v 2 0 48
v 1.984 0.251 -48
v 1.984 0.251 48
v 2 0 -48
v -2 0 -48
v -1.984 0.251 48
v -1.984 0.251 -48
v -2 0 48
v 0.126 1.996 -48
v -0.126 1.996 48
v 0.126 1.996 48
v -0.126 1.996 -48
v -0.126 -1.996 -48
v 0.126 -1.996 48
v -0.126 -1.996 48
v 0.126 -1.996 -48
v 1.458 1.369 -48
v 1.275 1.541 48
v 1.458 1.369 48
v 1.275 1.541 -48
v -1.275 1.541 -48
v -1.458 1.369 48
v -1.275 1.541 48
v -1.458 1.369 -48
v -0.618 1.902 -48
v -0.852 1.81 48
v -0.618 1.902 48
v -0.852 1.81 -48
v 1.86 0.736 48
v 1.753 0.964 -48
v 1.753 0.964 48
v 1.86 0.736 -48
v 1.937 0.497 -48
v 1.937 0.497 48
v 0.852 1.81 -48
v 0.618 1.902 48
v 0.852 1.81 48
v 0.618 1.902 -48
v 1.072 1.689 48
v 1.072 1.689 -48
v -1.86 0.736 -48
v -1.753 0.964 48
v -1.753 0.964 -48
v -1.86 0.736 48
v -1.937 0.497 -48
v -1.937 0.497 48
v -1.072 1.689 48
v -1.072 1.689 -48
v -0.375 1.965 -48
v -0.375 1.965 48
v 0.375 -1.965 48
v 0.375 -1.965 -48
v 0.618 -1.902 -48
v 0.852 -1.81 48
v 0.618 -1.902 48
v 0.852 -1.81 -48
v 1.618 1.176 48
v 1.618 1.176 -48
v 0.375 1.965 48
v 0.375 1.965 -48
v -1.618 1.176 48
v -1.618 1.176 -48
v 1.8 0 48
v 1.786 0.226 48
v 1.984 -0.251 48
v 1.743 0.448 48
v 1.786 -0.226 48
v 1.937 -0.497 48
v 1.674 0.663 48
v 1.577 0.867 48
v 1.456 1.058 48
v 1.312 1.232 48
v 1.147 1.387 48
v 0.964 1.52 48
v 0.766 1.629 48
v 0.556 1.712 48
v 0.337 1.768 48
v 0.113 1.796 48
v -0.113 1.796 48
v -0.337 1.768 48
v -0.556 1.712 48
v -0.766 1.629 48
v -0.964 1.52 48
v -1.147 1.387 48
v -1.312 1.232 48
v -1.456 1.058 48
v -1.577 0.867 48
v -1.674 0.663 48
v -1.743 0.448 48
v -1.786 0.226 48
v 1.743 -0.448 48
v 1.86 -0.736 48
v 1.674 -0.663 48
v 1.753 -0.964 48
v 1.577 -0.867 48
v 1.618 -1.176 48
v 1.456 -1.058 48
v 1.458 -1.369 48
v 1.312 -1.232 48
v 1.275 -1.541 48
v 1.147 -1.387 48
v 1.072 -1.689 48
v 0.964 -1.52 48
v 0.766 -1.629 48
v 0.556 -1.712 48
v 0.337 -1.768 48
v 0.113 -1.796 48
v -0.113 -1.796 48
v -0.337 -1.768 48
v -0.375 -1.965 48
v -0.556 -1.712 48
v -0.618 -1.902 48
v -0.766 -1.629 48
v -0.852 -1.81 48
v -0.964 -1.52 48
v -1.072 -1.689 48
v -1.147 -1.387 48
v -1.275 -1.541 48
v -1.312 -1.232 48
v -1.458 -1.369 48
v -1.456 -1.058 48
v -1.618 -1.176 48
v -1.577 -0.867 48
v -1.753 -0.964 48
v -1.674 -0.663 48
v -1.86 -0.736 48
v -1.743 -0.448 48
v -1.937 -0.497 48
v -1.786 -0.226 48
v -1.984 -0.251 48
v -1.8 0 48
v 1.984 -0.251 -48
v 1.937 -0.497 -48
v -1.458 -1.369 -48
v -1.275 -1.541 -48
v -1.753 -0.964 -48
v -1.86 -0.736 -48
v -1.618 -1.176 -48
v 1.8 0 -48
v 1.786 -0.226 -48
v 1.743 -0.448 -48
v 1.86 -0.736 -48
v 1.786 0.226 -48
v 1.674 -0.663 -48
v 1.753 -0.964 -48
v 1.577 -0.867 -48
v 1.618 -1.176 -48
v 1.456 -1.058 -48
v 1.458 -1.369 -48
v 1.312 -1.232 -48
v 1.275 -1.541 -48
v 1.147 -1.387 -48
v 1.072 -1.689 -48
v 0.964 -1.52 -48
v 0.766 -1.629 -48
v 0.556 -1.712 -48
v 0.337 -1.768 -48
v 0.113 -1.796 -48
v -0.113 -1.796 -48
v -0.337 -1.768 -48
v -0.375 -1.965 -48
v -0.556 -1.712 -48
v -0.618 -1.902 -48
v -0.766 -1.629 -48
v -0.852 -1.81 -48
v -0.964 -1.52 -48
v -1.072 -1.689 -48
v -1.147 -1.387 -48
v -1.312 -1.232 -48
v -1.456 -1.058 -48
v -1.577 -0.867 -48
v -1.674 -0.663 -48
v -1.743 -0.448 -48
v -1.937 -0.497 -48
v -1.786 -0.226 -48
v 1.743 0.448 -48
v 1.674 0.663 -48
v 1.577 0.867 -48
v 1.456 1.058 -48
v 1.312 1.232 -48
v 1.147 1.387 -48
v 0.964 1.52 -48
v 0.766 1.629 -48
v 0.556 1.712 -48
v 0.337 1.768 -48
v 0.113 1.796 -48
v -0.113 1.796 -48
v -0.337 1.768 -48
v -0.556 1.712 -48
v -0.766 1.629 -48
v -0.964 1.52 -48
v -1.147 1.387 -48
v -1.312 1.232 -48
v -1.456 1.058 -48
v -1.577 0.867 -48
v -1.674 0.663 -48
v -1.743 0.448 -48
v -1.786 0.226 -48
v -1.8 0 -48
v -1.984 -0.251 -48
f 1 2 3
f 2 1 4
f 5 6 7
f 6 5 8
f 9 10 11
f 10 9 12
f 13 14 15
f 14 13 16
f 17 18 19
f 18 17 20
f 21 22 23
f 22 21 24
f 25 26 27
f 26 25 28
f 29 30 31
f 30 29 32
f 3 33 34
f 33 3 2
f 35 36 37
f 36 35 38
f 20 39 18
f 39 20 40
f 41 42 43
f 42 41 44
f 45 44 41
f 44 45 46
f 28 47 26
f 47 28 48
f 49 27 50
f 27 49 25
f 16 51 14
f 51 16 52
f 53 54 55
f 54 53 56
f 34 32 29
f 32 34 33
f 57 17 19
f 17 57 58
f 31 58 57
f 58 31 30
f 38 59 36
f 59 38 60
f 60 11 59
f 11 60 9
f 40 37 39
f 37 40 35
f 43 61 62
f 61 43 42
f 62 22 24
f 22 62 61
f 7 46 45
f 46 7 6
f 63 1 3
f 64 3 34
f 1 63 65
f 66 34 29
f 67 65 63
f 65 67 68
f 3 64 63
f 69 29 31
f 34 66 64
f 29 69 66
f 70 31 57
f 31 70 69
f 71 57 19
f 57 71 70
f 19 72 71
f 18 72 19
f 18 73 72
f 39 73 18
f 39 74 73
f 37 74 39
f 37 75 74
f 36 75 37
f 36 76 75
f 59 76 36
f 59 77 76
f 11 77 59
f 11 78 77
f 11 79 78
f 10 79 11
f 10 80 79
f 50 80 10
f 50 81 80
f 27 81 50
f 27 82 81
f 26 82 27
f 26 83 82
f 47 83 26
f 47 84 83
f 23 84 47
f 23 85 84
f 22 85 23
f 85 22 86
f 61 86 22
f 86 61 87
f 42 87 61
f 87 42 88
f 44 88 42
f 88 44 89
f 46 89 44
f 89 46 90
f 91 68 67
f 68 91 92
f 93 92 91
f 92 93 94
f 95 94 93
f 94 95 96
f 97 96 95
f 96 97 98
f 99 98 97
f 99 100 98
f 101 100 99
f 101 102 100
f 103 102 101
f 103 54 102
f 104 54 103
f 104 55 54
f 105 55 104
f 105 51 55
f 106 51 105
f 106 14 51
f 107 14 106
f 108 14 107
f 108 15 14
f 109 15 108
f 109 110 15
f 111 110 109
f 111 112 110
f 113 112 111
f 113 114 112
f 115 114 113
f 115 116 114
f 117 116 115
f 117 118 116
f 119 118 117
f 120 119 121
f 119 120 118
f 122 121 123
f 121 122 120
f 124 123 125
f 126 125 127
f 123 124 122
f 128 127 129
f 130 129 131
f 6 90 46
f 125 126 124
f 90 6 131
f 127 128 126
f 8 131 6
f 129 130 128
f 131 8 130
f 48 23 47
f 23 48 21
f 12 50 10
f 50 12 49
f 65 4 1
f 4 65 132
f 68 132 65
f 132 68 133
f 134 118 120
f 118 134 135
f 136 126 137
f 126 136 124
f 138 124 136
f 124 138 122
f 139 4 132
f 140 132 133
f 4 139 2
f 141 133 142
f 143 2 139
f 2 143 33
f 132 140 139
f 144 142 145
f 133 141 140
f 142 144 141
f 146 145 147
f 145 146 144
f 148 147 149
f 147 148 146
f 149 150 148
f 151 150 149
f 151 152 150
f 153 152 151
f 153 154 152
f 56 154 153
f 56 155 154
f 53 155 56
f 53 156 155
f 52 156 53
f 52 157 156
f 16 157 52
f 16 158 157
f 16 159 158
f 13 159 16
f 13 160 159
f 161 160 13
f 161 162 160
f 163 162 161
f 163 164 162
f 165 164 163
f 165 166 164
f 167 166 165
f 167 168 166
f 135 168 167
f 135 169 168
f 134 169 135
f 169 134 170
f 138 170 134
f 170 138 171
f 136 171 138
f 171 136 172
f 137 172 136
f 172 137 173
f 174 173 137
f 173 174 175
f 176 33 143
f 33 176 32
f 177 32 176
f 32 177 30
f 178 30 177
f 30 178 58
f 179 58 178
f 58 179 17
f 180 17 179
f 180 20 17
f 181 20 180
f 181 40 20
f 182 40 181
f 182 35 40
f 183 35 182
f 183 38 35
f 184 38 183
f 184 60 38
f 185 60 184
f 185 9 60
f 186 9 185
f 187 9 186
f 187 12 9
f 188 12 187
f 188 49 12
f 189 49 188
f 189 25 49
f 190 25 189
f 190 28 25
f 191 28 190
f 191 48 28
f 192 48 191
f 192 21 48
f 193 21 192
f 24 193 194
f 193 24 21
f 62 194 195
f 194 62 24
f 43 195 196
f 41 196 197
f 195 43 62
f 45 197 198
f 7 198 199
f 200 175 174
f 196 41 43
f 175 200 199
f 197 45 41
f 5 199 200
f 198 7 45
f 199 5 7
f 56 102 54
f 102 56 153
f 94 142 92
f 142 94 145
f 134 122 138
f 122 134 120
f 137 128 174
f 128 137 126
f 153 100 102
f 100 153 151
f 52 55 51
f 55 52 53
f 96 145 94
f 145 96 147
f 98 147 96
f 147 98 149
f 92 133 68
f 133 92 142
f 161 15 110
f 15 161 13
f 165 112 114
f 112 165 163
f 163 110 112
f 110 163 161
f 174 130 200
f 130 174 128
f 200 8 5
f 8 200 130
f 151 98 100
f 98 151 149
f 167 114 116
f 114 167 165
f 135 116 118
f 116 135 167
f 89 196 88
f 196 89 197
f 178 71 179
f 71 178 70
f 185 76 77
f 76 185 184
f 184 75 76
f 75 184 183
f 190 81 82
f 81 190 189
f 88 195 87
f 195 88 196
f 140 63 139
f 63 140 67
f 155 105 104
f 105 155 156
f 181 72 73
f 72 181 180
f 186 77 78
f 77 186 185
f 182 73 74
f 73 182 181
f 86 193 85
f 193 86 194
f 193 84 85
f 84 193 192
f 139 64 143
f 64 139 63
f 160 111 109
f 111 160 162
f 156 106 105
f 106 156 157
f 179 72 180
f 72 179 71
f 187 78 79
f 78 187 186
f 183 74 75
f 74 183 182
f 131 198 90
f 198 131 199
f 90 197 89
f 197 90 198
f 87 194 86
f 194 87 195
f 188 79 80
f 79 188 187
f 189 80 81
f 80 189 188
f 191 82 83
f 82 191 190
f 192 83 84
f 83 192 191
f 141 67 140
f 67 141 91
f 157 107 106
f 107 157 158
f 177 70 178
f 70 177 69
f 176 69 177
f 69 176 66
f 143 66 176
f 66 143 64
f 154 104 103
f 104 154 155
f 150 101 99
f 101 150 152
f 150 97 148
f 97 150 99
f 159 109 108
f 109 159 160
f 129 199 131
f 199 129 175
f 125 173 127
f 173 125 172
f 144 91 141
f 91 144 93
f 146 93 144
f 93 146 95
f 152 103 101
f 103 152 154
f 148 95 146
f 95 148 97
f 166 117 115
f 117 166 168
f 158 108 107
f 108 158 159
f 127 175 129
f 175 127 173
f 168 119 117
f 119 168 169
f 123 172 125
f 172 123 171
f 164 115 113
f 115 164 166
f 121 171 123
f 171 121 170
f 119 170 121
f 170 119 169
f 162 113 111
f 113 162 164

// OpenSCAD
$fn = 50;


difference() {
	union() {
		translate(v = [0, 0, -48.0000000000]) {
			cylinder(h = 96, r = 2.0000000000);
		}
	}
	union() {
		translate(v = [0, 0, -100.0000000000]) {
			cylinder(h = 200, r = 1.8000000000);
		}
	}
}
